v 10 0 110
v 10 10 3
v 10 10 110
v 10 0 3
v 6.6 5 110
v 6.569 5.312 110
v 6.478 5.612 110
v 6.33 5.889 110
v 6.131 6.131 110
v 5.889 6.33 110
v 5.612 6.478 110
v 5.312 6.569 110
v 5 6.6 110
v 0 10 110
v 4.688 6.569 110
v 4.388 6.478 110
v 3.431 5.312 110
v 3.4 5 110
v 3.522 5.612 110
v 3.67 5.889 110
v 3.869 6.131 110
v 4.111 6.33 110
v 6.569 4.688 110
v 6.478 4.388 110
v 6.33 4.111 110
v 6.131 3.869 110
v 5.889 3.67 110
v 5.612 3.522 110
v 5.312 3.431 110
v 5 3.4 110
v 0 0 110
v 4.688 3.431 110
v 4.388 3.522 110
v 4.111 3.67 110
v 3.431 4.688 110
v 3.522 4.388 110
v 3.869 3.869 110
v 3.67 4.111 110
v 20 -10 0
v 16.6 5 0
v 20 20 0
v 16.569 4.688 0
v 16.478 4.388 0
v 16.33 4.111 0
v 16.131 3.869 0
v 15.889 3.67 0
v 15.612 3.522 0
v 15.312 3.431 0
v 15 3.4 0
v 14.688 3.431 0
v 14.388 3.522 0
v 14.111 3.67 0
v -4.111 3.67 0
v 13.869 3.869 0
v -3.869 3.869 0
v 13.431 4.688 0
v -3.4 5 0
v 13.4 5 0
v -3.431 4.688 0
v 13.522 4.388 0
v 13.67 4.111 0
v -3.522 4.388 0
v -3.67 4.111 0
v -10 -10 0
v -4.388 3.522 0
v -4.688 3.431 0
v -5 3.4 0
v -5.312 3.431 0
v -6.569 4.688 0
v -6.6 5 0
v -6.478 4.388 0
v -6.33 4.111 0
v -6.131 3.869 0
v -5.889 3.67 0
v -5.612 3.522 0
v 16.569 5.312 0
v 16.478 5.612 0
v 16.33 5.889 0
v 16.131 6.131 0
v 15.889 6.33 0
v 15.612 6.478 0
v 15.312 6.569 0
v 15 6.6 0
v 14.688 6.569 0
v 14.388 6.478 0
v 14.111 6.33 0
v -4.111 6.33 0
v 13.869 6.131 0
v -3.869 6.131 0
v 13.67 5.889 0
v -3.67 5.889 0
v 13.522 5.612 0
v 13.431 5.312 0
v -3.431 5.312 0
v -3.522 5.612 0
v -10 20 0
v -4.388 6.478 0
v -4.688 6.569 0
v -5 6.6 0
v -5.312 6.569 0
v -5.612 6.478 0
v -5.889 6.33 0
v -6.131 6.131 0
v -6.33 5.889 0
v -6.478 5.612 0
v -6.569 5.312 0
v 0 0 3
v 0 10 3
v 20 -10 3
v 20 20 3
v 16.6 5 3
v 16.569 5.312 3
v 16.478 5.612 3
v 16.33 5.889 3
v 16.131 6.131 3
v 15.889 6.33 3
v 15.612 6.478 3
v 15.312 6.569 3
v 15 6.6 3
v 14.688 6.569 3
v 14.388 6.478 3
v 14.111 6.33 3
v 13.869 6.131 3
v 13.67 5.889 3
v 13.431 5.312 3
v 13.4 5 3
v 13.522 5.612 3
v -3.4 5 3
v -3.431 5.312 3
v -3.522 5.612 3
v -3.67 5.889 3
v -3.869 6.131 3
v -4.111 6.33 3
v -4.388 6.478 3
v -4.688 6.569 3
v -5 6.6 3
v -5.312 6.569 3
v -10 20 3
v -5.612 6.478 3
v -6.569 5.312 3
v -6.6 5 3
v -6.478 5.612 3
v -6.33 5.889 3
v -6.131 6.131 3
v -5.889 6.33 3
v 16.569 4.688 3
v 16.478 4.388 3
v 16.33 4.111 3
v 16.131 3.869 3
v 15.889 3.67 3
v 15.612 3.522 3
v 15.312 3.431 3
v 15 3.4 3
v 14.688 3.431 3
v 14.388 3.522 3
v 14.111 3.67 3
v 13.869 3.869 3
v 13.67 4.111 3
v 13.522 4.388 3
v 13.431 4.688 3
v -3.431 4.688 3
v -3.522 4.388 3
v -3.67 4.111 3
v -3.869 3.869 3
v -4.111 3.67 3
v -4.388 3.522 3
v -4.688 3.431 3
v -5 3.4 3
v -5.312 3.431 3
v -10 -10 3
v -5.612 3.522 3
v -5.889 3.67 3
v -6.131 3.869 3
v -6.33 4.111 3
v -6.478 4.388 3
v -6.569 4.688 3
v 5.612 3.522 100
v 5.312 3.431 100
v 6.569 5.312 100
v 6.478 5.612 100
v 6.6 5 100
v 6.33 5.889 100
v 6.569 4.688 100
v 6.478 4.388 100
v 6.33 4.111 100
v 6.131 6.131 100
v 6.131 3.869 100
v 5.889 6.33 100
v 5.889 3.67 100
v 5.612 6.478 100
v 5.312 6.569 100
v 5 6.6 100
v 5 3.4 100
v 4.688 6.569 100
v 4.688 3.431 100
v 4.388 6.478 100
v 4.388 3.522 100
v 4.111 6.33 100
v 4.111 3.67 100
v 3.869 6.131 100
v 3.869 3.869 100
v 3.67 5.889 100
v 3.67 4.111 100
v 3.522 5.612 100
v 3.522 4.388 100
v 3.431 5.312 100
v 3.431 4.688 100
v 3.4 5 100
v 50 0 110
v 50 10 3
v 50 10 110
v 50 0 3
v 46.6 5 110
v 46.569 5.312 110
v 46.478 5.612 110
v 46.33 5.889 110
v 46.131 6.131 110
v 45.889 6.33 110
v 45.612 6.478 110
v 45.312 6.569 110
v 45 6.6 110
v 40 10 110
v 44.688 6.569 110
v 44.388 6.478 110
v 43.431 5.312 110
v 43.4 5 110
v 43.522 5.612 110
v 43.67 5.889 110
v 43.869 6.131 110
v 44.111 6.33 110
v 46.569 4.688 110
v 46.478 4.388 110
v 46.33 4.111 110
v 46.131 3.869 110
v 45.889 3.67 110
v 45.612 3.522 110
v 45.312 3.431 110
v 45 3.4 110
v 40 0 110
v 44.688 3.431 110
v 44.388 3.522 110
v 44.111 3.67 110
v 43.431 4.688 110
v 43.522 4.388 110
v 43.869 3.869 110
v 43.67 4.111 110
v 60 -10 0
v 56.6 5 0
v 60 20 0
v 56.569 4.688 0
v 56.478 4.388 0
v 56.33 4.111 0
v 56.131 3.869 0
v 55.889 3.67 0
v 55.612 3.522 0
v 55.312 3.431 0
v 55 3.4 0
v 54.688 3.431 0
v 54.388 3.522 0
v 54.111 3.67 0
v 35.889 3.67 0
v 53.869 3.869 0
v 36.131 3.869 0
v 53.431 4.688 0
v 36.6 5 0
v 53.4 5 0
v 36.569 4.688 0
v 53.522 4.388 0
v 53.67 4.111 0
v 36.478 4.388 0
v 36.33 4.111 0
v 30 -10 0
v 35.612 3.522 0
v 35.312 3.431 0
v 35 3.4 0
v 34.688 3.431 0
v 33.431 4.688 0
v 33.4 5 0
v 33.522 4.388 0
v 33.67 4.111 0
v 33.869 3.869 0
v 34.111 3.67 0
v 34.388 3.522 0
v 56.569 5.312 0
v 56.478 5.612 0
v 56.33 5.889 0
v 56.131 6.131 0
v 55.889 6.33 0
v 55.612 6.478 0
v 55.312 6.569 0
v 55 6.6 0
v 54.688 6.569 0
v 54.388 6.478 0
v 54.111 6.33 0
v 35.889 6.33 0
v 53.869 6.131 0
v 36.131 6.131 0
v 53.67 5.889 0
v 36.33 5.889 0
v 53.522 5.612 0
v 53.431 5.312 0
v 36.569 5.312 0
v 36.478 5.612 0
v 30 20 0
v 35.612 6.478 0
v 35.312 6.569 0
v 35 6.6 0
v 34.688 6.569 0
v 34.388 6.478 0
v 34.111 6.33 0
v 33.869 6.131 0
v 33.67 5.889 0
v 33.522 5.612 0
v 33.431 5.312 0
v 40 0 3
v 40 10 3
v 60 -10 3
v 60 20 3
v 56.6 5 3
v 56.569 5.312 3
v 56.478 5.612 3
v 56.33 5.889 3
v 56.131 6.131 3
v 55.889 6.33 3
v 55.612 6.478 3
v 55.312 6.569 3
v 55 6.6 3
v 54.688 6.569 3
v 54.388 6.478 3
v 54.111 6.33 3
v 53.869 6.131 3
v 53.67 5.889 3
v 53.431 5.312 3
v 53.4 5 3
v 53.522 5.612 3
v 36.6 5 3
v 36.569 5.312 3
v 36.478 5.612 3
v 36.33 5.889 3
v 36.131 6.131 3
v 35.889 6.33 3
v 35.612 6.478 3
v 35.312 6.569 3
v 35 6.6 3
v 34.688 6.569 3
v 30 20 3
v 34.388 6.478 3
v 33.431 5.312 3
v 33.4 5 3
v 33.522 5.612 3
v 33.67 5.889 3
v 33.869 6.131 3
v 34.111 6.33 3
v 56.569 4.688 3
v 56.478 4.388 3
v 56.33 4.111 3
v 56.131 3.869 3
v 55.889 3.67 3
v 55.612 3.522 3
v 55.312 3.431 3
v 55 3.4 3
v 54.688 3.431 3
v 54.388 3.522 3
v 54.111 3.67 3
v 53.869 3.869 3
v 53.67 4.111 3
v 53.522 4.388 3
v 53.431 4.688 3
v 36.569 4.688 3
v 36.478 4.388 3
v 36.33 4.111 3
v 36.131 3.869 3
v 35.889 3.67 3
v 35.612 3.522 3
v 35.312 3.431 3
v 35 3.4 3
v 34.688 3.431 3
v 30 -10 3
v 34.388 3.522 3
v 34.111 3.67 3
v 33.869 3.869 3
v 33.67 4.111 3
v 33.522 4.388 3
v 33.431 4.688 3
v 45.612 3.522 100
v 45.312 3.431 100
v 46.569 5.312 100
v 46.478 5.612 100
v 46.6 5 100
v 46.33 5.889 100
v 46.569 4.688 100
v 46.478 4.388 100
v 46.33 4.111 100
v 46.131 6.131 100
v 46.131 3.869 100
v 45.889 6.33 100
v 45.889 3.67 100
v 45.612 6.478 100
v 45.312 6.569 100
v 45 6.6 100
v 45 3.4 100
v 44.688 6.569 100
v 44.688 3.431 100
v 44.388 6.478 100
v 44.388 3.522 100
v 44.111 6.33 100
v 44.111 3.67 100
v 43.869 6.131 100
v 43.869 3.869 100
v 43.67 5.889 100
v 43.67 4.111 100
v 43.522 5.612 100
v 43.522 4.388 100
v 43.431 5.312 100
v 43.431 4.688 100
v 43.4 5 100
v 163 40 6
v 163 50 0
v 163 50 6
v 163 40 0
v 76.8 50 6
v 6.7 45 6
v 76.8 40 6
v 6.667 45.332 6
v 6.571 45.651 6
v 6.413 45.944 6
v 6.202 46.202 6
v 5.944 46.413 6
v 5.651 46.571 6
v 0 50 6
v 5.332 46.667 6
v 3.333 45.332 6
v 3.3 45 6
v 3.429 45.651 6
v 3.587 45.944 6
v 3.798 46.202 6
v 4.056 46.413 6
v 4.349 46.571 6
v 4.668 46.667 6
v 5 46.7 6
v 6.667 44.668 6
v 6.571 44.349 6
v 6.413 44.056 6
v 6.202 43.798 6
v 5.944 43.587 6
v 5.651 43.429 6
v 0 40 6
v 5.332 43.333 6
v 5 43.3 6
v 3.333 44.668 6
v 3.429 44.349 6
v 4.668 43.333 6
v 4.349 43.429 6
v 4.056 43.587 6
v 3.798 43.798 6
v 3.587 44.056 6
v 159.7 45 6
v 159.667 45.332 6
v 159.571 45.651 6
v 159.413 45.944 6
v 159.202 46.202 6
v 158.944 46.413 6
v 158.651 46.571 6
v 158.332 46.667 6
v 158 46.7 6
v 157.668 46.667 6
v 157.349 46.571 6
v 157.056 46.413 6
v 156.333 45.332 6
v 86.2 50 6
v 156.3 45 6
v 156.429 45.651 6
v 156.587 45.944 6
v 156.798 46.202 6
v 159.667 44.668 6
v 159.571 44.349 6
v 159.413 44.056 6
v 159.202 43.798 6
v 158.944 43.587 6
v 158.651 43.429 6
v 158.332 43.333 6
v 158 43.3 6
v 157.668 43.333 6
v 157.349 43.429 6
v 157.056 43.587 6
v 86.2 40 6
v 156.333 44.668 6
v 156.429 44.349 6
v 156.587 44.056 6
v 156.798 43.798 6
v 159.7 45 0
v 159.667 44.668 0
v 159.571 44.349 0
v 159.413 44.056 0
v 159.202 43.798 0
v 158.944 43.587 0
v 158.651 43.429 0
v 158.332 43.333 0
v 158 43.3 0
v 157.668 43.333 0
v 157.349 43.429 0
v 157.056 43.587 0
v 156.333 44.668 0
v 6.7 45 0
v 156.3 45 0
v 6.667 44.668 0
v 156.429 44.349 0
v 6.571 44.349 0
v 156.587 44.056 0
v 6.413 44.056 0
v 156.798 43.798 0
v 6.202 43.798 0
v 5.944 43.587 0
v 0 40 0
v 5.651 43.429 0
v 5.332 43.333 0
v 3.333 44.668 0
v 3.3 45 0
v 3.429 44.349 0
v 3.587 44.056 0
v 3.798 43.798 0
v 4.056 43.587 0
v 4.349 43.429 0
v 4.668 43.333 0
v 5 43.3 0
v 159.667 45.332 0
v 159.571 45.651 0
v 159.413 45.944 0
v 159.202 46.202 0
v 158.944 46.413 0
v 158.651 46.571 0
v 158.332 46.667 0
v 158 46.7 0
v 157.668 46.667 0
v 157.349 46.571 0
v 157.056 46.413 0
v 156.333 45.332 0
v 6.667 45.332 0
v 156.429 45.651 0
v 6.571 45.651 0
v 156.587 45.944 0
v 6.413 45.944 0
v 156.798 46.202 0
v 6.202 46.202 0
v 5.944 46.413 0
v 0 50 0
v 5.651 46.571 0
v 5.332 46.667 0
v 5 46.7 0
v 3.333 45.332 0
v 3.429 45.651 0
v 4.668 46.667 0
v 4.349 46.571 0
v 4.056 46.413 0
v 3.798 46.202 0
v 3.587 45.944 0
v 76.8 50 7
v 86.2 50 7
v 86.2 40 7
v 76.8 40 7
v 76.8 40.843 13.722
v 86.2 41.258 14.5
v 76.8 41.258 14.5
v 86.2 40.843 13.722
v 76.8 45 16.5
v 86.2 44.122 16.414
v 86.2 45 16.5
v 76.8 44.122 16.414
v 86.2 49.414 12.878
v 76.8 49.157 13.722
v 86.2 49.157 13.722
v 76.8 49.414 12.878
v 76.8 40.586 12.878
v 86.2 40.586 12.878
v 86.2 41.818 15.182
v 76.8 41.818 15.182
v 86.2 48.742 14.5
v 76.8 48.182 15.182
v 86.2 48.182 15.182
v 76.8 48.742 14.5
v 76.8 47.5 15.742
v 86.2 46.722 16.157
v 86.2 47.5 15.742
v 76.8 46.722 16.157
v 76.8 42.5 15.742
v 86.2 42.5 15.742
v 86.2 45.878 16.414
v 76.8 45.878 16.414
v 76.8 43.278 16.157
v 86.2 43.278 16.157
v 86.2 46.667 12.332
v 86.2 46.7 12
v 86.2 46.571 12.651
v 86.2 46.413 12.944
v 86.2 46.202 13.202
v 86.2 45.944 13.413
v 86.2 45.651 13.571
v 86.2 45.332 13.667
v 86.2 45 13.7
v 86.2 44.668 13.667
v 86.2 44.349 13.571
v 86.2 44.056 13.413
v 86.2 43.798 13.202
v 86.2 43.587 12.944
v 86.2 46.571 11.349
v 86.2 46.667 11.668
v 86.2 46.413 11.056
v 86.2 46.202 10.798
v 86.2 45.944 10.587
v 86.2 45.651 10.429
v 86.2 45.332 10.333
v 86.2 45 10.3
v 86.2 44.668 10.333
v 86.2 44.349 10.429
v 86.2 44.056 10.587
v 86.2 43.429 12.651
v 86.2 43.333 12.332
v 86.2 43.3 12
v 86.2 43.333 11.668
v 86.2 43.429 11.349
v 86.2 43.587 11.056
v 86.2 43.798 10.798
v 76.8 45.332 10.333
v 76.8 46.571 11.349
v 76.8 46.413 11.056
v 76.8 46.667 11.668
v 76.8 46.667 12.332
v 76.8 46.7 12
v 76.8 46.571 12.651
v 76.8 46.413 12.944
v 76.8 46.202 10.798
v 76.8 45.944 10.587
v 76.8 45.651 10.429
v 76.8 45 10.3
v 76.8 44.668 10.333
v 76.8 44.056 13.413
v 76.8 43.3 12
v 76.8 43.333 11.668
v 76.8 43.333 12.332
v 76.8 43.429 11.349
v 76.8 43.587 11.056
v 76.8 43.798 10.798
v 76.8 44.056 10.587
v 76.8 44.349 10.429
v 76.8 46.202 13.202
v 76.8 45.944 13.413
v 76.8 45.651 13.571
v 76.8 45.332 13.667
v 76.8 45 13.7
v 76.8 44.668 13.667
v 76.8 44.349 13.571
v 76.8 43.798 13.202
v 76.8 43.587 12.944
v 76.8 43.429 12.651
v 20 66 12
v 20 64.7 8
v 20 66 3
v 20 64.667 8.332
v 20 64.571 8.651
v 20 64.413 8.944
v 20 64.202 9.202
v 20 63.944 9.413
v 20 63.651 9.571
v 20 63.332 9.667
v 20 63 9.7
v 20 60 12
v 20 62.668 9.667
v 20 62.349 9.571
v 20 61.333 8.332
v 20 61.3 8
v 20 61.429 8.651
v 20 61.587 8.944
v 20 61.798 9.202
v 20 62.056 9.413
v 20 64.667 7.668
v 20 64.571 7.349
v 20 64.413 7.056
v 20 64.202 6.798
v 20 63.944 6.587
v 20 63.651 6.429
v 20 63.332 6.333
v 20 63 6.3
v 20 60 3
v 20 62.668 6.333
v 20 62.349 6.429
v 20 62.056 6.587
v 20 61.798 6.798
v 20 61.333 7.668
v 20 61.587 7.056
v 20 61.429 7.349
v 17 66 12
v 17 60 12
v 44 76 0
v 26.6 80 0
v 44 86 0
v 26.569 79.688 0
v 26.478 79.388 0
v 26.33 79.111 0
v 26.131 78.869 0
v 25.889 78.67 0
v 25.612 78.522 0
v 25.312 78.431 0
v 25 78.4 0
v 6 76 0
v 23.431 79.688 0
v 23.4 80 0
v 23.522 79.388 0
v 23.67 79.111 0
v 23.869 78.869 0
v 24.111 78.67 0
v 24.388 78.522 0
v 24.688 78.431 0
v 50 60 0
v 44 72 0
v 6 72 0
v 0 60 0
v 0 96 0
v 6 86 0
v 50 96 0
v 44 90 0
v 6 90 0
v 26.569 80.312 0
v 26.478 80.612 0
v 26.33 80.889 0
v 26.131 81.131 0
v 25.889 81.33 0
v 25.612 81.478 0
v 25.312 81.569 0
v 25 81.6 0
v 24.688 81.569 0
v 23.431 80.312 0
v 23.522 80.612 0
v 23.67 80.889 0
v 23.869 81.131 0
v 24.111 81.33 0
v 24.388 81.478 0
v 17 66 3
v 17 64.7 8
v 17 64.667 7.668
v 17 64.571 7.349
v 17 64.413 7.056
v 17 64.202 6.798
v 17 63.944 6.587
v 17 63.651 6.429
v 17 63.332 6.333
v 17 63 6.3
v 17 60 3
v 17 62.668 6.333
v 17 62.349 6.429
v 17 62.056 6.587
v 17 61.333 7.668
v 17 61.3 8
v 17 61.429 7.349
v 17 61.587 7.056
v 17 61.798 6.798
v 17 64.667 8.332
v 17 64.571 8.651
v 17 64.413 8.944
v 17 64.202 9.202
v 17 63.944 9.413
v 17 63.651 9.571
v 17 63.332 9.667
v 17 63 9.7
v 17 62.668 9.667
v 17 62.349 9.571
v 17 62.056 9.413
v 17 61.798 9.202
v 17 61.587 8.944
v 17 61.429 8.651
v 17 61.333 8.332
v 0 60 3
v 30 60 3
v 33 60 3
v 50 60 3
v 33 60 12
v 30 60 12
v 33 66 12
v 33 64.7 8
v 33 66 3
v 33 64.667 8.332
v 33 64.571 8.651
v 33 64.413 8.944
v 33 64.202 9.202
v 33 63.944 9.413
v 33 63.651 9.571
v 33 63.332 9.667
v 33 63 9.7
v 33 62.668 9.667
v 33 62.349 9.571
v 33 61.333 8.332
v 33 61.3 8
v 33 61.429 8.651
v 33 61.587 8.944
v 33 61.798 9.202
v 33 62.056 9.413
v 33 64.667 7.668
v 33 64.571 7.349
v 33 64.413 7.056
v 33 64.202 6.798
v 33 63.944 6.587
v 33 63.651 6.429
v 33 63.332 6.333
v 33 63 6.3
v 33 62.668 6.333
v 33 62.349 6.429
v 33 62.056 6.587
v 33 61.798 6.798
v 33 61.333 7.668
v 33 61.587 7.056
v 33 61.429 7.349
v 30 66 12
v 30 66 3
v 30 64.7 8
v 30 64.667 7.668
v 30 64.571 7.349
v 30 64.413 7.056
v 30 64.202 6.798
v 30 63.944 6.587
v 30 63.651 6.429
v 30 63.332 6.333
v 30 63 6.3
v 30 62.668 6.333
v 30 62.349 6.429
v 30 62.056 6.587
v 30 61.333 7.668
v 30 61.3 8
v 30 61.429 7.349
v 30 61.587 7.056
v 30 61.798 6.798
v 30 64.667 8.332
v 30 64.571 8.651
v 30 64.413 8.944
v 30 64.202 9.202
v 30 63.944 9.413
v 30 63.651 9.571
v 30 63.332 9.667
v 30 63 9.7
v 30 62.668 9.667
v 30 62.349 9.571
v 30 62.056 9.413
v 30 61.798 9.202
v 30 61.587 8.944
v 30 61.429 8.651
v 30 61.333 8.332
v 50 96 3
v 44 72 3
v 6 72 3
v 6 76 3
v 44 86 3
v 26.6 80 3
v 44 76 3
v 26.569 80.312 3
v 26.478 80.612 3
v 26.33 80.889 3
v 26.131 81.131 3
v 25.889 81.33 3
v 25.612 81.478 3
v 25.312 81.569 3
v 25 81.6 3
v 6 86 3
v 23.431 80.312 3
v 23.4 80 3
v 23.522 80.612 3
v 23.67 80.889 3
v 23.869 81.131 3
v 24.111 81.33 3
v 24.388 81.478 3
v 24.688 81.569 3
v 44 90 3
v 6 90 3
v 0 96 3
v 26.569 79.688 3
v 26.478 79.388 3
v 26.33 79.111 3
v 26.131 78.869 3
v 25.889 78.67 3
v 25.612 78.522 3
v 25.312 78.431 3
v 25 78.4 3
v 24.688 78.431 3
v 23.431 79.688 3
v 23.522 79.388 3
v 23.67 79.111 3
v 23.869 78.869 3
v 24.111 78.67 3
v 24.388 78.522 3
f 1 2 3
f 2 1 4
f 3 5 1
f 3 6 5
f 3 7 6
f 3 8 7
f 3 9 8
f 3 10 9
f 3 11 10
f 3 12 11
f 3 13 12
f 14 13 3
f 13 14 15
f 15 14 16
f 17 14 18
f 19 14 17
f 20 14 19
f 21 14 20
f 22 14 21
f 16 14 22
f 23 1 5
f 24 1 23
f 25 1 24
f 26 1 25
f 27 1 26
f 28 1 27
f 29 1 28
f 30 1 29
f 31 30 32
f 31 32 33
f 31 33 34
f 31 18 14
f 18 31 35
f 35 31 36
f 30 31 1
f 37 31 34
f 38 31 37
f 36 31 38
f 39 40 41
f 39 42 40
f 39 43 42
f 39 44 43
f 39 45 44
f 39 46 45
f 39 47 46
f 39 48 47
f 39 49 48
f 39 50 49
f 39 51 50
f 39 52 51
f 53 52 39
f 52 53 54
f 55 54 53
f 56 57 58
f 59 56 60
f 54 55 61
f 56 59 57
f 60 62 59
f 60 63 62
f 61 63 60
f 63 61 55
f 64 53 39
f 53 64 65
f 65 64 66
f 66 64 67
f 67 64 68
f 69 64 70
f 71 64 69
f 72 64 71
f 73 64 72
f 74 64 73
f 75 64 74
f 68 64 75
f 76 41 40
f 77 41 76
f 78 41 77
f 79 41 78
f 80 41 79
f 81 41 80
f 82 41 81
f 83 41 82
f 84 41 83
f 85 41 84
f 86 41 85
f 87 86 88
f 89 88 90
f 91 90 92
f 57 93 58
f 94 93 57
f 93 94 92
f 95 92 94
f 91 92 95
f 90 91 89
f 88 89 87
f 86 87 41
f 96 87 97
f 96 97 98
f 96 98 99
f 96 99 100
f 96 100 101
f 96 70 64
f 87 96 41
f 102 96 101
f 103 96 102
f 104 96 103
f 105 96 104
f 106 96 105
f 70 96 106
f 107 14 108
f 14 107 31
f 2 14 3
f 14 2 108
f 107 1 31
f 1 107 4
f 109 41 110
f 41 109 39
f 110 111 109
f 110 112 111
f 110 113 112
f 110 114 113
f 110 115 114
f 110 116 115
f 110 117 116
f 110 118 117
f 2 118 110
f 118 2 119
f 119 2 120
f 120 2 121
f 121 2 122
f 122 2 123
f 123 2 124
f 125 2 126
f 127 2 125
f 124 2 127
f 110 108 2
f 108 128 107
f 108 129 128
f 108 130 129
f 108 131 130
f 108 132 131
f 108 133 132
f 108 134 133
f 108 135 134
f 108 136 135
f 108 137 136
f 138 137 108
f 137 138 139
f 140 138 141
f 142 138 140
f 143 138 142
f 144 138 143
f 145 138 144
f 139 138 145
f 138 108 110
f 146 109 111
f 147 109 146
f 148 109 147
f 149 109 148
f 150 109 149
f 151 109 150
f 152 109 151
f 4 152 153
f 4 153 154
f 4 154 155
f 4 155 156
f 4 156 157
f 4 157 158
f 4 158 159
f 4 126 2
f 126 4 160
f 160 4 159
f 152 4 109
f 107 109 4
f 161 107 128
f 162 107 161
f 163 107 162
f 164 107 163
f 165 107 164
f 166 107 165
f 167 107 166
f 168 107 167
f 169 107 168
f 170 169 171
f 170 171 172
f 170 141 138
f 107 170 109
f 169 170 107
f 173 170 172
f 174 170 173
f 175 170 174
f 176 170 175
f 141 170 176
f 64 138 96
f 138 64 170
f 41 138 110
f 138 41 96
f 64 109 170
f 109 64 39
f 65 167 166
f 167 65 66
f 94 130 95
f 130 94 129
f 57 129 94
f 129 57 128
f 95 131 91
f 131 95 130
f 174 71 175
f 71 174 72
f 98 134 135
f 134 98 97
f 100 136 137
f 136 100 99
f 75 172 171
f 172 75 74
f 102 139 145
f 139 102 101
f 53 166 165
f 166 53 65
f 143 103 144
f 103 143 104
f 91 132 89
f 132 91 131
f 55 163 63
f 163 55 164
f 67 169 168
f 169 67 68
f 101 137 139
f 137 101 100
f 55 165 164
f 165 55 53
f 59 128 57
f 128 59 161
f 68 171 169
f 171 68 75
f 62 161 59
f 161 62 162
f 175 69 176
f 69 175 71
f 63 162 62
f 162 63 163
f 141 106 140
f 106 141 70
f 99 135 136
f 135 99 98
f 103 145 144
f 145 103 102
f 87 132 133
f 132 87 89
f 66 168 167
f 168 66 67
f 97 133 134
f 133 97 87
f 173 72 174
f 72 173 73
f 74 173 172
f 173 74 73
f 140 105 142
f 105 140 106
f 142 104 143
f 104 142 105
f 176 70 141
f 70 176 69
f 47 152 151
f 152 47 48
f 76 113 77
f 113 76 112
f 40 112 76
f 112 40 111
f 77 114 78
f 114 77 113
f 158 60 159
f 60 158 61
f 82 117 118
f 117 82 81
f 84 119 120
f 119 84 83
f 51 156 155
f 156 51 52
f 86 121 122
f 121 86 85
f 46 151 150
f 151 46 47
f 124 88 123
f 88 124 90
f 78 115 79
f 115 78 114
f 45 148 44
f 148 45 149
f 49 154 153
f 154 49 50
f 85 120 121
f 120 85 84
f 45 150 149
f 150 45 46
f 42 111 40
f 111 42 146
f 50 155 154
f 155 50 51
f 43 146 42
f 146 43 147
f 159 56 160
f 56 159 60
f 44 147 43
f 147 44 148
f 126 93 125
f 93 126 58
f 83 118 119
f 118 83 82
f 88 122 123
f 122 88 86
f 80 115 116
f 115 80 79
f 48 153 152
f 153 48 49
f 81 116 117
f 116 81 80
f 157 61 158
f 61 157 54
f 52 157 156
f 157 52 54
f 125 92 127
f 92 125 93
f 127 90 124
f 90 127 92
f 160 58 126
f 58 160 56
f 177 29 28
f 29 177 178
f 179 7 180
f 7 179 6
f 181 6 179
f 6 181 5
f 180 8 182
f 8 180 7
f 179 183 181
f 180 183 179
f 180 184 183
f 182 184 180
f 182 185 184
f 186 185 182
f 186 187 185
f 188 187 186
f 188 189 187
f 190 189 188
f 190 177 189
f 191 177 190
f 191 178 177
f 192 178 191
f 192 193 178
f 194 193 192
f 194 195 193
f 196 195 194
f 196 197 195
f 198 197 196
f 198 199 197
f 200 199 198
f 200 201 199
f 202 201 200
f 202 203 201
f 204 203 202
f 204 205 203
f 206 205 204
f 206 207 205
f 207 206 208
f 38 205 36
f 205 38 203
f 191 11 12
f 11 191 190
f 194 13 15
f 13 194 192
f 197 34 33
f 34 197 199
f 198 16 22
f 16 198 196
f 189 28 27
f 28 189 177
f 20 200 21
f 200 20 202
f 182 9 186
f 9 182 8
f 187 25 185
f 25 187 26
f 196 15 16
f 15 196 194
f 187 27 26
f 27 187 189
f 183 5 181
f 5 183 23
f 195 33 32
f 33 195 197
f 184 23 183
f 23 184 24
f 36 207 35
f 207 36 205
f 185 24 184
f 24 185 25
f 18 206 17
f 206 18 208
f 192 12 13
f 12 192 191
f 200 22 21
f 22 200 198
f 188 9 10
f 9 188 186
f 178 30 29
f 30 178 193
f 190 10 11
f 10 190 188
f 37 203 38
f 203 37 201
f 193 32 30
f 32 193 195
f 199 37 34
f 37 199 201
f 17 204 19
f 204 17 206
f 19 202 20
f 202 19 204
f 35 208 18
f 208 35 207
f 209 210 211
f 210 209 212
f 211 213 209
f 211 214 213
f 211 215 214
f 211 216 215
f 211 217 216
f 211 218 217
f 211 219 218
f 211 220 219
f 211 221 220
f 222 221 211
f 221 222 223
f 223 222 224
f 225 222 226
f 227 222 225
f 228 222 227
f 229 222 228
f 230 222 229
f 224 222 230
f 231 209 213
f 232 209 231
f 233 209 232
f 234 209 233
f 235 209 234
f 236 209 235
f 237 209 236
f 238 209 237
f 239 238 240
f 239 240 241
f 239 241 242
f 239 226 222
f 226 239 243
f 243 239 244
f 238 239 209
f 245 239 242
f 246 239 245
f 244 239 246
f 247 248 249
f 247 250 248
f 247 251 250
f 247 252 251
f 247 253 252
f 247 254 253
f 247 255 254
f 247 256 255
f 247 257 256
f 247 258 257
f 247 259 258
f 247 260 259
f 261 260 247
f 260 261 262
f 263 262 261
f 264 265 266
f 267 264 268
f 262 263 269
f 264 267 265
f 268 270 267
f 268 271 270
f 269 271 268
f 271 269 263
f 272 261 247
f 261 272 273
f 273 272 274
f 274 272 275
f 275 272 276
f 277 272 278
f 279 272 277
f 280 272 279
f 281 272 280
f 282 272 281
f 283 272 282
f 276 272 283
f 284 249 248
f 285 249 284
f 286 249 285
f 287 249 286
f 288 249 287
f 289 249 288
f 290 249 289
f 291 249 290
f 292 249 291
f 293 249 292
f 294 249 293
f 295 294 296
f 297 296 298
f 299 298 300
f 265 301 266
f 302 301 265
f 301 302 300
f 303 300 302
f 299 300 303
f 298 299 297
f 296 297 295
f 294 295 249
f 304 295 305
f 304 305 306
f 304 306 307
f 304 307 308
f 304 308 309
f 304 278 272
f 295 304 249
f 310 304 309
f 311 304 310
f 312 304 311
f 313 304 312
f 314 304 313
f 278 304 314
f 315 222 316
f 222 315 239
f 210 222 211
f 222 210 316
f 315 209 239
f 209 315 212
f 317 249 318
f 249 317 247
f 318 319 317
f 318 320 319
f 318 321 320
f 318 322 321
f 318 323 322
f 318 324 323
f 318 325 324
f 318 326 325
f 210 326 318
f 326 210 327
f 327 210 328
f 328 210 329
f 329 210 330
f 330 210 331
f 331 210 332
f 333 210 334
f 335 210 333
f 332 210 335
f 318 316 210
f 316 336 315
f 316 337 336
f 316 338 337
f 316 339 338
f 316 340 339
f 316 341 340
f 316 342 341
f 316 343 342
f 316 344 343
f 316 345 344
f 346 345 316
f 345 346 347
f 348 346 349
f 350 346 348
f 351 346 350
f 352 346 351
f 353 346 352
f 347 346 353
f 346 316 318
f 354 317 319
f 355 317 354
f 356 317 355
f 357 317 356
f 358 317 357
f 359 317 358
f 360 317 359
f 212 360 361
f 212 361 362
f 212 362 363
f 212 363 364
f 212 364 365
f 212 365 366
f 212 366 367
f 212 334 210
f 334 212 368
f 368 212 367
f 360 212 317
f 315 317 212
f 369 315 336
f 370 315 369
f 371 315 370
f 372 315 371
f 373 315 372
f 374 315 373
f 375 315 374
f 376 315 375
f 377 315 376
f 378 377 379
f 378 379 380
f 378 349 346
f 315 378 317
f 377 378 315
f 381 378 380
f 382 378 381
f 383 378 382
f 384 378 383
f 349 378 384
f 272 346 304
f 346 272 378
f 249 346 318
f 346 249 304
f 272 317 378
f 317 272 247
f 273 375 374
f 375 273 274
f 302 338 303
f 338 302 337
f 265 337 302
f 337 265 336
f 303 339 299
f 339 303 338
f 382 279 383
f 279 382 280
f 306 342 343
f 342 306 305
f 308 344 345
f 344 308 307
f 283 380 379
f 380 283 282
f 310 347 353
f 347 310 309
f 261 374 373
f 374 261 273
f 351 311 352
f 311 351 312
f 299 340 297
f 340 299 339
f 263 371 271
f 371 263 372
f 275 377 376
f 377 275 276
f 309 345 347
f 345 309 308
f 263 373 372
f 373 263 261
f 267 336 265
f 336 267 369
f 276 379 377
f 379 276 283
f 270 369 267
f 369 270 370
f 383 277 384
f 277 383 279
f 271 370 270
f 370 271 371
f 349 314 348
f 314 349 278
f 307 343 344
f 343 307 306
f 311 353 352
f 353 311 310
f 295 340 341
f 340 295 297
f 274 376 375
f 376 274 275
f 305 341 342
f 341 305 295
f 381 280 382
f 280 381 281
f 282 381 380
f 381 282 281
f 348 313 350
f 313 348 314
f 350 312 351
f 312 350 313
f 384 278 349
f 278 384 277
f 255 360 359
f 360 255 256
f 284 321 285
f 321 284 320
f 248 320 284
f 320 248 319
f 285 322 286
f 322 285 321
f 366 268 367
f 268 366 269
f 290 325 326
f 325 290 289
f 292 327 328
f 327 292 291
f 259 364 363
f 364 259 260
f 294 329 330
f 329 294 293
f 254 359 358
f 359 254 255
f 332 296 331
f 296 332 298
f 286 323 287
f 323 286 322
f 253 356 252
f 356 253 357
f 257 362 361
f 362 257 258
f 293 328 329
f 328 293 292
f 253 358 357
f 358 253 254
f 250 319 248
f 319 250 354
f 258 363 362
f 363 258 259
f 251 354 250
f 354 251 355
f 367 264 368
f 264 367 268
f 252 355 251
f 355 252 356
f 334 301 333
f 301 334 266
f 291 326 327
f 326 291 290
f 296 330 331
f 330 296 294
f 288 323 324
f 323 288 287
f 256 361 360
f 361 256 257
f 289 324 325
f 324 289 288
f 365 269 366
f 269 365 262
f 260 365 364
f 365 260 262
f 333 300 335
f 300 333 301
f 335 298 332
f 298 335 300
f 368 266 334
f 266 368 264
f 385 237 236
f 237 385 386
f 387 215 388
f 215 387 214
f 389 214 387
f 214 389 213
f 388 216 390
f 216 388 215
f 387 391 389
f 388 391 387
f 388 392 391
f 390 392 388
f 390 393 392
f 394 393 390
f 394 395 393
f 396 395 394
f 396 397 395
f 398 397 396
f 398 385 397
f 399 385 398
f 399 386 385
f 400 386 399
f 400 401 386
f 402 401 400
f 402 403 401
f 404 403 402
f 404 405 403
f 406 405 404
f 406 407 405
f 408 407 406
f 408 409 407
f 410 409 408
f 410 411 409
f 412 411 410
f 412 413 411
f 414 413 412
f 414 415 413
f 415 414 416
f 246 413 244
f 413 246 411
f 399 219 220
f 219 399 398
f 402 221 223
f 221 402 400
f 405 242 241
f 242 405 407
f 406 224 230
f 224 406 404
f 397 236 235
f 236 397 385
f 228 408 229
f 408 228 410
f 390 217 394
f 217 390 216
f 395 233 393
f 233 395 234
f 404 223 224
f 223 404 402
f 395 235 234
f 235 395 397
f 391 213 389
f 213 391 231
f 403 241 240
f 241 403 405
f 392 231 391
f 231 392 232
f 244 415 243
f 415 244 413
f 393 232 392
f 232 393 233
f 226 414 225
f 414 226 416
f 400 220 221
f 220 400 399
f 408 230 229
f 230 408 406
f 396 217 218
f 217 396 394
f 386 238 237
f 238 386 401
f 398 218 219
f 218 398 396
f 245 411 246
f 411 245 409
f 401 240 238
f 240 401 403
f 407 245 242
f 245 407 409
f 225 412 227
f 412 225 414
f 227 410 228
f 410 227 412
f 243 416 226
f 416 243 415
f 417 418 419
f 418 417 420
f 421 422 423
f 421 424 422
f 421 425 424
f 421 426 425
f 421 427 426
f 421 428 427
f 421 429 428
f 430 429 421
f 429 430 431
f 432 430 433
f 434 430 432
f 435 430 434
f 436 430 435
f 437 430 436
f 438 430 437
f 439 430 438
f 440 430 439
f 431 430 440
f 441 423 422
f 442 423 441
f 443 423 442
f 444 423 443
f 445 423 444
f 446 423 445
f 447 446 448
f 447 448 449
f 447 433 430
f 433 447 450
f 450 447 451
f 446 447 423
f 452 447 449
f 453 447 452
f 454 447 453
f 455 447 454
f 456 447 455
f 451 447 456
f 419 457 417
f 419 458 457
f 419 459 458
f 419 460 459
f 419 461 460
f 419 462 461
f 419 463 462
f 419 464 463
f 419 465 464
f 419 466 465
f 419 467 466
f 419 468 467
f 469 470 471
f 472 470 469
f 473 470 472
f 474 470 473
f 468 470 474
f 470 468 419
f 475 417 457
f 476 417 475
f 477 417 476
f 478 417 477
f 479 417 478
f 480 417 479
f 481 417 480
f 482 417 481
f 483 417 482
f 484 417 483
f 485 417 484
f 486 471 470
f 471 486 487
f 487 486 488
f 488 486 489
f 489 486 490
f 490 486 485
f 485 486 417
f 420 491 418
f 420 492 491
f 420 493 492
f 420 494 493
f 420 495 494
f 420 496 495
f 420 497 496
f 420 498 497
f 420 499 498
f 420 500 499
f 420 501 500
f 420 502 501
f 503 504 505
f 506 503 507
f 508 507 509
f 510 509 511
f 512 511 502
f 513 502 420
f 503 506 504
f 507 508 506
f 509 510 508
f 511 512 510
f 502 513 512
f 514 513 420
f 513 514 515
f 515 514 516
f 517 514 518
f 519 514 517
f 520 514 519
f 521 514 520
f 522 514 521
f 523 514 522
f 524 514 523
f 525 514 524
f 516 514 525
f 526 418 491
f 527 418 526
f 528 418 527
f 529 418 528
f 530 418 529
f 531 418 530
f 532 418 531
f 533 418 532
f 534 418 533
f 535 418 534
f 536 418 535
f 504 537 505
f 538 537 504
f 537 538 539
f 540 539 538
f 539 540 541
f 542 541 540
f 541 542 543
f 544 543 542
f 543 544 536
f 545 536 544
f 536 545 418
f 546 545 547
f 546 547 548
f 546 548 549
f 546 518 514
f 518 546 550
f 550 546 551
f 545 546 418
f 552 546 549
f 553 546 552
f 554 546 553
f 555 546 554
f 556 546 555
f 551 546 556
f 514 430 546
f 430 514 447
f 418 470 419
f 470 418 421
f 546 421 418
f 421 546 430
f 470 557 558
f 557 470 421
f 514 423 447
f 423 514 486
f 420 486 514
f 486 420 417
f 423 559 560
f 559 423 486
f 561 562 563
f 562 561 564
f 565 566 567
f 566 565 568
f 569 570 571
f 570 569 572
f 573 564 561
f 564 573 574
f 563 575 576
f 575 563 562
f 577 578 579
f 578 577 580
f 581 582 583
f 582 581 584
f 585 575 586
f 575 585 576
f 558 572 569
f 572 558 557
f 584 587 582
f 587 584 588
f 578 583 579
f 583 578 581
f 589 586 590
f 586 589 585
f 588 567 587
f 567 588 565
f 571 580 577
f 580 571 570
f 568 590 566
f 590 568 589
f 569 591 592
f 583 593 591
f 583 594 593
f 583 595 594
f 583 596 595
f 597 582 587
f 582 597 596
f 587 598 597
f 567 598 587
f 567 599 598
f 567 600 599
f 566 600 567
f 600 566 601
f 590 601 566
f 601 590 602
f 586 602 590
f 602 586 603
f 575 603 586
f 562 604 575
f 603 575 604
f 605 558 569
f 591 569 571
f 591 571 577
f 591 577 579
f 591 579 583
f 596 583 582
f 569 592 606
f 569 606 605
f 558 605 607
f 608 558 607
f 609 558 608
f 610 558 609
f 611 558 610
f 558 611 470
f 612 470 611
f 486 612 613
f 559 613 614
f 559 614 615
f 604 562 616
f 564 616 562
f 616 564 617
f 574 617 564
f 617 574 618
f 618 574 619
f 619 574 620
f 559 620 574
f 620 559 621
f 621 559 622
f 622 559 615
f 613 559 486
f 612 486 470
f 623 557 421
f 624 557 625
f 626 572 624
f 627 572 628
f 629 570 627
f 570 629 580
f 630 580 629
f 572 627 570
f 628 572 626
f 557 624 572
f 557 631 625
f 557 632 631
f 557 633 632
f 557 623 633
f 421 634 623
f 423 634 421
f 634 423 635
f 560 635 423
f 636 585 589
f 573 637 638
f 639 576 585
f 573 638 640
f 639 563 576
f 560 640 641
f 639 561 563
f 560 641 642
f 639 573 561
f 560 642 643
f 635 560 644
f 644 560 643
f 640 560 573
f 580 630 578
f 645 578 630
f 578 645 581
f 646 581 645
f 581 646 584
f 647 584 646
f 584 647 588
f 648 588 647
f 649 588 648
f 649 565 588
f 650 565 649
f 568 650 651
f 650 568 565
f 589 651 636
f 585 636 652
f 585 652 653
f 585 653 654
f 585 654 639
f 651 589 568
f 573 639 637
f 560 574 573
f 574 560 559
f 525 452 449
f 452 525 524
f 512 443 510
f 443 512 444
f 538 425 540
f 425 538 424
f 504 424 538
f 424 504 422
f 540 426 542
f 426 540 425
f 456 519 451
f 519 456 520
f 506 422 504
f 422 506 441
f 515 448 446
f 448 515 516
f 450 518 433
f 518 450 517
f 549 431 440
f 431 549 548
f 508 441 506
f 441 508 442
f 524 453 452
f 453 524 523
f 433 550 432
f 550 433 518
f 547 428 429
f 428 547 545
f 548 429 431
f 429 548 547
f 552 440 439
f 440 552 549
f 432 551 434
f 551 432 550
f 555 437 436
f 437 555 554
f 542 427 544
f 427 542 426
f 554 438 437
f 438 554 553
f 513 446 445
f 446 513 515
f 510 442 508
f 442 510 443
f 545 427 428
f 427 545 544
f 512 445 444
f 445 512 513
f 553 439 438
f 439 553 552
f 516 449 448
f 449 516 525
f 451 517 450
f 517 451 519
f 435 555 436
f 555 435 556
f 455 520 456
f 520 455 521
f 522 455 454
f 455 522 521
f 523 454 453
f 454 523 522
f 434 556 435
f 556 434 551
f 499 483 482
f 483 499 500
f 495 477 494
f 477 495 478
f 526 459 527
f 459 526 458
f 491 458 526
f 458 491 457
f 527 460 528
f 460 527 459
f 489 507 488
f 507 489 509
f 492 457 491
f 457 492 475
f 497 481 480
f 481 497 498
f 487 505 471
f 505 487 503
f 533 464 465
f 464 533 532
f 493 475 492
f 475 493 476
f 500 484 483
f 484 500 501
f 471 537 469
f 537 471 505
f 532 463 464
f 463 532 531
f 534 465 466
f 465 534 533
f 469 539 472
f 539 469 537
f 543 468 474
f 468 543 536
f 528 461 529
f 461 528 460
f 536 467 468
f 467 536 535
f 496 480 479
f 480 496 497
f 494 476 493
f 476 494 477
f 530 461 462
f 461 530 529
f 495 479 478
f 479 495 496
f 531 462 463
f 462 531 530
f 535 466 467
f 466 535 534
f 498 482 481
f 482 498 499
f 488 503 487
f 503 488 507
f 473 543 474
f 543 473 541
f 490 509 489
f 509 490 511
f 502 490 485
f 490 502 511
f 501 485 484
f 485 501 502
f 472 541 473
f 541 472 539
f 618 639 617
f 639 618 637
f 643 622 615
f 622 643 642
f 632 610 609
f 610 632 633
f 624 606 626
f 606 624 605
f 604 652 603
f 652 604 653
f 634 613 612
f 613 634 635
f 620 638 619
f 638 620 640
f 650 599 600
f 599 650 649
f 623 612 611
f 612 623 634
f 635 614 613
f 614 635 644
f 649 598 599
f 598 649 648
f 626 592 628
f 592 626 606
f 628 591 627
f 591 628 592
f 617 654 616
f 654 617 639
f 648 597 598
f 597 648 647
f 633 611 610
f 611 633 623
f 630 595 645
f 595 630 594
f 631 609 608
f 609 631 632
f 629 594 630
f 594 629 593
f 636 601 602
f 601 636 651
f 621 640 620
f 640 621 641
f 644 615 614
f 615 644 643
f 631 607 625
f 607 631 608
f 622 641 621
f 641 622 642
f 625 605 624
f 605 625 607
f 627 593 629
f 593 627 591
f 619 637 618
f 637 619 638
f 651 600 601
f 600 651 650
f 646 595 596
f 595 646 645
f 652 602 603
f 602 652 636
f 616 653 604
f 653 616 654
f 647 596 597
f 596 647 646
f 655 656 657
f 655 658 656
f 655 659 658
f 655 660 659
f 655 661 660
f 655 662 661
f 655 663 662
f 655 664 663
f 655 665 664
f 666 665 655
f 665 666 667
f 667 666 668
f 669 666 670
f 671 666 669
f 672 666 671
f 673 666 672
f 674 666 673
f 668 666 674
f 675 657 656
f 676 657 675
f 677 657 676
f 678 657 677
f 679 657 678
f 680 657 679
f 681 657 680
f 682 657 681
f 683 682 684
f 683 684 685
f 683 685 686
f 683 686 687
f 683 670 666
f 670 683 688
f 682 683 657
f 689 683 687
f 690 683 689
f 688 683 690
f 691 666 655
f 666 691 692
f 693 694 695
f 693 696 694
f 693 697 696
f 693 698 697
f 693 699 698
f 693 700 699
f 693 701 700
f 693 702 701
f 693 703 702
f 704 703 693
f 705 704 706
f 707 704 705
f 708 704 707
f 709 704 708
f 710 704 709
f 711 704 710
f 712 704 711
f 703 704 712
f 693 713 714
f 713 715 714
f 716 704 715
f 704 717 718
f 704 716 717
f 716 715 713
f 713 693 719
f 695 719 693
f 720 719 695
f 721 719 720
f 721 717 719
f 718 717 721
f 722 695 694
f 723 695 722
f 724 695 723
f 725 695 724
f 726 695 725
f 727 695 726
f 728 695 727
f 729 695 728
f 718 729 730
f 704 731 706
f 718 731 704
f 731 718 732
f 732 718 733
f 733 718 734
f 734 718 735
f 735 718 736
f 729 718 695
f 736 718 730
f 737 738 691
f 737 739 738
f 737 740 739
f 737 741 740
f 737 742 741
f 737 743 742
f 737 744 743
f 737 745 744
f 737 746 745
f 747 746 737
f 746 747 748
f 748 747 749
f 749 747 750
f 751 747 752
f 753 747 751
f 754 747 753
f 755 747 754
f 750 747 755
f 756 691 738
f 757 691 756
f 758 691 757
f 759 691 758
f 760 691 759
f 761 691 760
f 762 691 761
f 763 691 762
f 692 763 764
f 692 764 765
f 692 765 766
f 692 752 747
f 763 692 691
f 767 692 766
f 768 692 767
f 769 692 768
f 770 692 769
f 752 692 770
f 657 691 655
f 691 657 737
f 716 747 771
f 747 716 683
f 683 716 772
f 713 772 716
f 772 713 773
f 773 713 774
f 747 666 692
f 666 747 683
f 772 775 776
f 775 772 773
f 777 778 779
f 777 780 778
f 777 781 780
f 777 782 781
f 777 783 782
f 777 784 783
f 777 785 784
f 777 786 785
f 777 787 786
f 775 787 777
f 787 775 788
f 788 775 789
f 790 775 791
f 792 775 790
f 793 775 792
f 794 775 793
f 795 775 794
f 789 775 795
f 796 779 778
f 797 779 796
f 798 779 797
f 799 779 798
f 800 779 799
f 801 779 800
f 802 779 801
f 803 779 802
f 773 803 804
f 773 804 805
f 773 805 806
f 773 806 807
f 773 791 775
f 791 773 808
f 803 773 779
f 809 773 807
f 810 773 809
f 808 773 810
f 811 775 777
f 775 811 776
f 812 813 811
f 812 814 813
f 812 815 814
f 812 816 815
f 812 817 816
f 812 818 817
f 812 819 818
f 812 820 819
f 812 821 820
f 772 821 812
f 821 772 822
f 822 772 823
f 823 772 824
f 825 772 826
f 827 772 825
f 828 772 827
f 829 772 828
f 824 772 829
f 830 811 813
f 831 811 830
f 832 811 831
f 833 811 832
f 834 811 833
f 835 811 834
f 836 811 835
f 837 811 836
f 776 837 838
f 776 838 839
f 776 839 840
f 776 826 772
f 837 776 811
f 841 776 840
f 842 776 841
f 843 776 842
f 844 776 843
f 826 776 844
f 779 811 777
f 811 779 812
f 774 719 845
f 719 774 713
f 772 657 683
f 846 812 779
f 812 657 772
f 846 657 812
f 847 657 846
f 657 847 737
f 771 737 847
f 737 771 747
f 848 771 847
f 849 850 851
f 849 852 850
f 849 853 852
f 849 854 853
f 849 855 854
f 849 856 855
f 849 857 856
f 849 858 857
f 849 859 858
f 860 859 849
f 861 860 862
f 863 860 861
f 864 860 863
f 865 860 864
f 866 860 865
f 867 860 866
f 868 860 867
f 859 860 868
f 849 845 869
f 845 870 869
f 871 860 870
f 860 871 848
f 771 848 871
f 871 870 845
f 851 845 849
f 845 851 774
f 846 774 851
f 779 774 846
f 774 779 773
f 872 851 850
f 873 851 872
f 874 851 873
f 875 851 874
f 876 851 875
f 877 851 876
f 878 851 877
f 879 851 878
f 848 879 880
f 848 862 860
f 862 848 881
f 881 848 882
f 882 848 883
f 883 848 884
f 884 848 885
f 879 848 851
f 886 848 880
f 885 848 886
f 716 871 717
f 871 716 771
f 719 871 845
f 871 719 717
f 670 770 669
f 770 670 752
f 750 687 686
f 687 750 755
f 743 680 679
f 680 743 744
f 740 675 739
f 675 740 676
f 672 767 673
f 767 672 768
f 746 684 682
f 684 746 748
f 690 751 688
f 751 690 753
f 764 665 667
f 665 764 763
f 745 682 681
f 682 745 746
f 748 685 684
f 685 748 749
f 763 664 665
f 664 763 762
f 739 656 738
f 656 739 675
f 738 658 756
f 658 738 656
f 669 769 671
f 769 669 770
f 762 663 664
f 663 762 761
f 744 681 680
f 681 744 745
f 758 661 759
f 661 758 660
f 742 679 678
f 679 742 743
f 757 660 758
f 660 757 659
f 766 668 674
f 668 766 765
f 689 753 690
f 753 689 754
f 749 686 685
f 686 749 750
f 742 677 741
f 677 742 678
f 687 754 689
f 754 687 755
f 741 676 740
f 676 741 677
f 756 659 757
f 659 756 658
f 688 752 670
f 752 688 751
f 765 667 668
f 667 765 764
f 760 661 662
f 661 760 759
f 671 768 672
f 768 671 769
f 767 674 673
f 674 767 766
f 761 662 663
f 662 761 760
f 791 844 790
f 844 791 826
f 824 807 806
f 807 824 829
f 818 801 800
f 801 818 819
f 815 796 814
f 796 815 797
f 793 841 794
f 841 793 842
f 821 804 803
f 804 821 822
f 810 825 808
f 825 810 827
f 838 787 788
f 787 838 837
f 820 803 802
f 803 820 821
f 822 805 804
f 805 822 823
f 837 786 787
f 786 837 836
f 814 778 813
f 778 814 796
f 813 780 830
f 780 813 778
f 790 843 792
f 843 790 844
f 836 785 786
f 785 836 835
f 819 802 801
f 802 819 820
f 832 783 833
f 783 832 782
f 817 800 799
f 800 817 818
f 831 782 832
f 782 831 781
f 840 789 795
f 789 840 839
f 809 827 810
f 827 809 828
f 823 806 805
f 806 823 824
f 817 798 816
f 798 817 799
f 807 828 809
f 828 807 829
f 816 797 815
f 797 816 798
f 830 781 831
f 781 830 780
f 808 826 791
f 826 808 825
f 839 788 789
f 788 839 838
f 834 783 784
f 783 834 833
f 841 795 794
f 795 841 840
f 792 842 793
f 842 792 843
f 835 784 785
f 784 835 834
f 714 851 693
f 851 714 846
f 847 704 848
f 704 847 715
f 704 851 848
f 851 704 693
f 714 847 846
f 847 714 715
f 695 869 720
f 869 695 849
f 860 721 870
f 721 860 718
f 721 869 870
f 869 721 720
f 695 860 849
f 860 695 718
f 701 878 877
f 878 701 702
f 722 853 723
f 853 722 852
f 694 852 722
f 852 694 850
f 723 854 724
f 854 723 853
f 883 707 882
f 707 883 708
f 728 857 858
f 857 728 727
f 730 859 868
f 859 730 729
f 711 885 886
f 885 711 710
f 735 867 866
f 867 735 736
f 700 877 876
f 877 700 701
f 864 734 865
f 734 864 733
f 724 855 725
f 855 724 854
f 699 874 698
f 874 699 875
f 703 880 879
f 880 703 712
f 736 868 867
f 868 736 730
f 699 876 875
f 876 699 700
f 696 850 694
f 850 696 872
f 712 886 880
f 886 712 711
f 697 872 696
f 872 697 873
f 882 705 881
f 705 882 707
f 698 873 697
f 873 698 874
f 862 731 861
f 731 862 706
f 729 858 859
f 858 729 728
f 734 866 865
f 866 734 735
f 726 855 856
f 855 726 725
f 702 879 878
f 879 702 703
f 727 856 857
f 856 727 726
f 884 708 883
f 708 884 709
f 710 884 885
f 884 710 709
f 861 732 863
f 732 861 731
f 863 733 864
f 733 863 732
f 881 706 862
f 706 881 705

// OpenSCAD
// Camera bridge over a lane: two legs + crossbar with a hinge block + tilting camera plate.
// The plate is mounted upside down: its two lugs straddle the hinge block, an M3 screw is the hinge axis and
// the plate tilts 0-40 deg. With a webcam strapped on the plate the lens ends up ~130 mm above the floor
// (see sklop/sklop_makete.scad, which computes the tilt). For a 1/4" tripod thread drill the centre hole to 6.5 mm.
part = "all";              // "leg" | "bar" | "plate" | "all"
lane_width = 133;
height = 110;              // leg height; the crossbar (6 mm) sits on the legs
hinge_z = 6;               // hinge axis above the top of the crossbar
leg = 10; $fn = 32;

module leg() {
    difference() {
        union() {
            cube([leg, leg, height]);
            translate([-10, -10, 0]) cube([leg + 20, leg + 20, 3]);
        }
        translate([leg / 2, leg / 2, height - 10]) cylinder(d = 3.2, h = 11);   // bar screw
        for (x = [-5, leg + 5]) translate([x, leg / 2, -1]) cylinder(d = 3.2, h = 5);
    }
}

module bar() {
    span = lane_width + 2 * leg + 10;
    difference() {
        union() {
            cube([span, leg, 6]);
            // hinge block between the plate lugs, rounded (r 4.5) so the tilted plate always clears it
            translate([span / 2, 0, 0]) hull() {
                translate([-4.7, 0, 0]) cube([9.4, leg, 7]);
                translate([-4.7, leg / 2, 6 + hinge_z]) rotate([0, 90, 0]) cylinder(r = 4.5, h = 9.4);
            }
        }
        for (x = [leg / 2, span - leg / 2]) translate([x, leg / 2, -1]) cylinder(d = 3.4, h = 8);
        translate([span / 2 - 6, leg / 2, 6 + hinge_z]) rotate([0, 90, 0]) cylinder(d = 3.4, h = 12);   // hinge screw
    }
}

module plate() {
    difference() {
        union() {
            cube([50, 36, 3]);
            for (x = [17, 30]) translate([x, 0, 0]) cube([3, 6, 12]);           // hinge lugs
        }
        for (x = [17, 30]) translate([x - 1, 3, 8]) rotate([0, 90, 0]) cylinder(d = 3.4, h = 6);
        for (y = [12, 26]) translate([6, y, -1]) cube([38, 4, 5]);              // strap slots
        translate([25, 20, -1]) cylinder(d = 3.2, h = 5);
    }
}

if (part == "leg") leg();
else if (part == "bar") bar();
else if (part == "plate") plate();
else { leg(); translate([40, 0, 0]) leg(); translate([0, 40, 0]) bar(); translate([0, 60, 0]) plate(); }
